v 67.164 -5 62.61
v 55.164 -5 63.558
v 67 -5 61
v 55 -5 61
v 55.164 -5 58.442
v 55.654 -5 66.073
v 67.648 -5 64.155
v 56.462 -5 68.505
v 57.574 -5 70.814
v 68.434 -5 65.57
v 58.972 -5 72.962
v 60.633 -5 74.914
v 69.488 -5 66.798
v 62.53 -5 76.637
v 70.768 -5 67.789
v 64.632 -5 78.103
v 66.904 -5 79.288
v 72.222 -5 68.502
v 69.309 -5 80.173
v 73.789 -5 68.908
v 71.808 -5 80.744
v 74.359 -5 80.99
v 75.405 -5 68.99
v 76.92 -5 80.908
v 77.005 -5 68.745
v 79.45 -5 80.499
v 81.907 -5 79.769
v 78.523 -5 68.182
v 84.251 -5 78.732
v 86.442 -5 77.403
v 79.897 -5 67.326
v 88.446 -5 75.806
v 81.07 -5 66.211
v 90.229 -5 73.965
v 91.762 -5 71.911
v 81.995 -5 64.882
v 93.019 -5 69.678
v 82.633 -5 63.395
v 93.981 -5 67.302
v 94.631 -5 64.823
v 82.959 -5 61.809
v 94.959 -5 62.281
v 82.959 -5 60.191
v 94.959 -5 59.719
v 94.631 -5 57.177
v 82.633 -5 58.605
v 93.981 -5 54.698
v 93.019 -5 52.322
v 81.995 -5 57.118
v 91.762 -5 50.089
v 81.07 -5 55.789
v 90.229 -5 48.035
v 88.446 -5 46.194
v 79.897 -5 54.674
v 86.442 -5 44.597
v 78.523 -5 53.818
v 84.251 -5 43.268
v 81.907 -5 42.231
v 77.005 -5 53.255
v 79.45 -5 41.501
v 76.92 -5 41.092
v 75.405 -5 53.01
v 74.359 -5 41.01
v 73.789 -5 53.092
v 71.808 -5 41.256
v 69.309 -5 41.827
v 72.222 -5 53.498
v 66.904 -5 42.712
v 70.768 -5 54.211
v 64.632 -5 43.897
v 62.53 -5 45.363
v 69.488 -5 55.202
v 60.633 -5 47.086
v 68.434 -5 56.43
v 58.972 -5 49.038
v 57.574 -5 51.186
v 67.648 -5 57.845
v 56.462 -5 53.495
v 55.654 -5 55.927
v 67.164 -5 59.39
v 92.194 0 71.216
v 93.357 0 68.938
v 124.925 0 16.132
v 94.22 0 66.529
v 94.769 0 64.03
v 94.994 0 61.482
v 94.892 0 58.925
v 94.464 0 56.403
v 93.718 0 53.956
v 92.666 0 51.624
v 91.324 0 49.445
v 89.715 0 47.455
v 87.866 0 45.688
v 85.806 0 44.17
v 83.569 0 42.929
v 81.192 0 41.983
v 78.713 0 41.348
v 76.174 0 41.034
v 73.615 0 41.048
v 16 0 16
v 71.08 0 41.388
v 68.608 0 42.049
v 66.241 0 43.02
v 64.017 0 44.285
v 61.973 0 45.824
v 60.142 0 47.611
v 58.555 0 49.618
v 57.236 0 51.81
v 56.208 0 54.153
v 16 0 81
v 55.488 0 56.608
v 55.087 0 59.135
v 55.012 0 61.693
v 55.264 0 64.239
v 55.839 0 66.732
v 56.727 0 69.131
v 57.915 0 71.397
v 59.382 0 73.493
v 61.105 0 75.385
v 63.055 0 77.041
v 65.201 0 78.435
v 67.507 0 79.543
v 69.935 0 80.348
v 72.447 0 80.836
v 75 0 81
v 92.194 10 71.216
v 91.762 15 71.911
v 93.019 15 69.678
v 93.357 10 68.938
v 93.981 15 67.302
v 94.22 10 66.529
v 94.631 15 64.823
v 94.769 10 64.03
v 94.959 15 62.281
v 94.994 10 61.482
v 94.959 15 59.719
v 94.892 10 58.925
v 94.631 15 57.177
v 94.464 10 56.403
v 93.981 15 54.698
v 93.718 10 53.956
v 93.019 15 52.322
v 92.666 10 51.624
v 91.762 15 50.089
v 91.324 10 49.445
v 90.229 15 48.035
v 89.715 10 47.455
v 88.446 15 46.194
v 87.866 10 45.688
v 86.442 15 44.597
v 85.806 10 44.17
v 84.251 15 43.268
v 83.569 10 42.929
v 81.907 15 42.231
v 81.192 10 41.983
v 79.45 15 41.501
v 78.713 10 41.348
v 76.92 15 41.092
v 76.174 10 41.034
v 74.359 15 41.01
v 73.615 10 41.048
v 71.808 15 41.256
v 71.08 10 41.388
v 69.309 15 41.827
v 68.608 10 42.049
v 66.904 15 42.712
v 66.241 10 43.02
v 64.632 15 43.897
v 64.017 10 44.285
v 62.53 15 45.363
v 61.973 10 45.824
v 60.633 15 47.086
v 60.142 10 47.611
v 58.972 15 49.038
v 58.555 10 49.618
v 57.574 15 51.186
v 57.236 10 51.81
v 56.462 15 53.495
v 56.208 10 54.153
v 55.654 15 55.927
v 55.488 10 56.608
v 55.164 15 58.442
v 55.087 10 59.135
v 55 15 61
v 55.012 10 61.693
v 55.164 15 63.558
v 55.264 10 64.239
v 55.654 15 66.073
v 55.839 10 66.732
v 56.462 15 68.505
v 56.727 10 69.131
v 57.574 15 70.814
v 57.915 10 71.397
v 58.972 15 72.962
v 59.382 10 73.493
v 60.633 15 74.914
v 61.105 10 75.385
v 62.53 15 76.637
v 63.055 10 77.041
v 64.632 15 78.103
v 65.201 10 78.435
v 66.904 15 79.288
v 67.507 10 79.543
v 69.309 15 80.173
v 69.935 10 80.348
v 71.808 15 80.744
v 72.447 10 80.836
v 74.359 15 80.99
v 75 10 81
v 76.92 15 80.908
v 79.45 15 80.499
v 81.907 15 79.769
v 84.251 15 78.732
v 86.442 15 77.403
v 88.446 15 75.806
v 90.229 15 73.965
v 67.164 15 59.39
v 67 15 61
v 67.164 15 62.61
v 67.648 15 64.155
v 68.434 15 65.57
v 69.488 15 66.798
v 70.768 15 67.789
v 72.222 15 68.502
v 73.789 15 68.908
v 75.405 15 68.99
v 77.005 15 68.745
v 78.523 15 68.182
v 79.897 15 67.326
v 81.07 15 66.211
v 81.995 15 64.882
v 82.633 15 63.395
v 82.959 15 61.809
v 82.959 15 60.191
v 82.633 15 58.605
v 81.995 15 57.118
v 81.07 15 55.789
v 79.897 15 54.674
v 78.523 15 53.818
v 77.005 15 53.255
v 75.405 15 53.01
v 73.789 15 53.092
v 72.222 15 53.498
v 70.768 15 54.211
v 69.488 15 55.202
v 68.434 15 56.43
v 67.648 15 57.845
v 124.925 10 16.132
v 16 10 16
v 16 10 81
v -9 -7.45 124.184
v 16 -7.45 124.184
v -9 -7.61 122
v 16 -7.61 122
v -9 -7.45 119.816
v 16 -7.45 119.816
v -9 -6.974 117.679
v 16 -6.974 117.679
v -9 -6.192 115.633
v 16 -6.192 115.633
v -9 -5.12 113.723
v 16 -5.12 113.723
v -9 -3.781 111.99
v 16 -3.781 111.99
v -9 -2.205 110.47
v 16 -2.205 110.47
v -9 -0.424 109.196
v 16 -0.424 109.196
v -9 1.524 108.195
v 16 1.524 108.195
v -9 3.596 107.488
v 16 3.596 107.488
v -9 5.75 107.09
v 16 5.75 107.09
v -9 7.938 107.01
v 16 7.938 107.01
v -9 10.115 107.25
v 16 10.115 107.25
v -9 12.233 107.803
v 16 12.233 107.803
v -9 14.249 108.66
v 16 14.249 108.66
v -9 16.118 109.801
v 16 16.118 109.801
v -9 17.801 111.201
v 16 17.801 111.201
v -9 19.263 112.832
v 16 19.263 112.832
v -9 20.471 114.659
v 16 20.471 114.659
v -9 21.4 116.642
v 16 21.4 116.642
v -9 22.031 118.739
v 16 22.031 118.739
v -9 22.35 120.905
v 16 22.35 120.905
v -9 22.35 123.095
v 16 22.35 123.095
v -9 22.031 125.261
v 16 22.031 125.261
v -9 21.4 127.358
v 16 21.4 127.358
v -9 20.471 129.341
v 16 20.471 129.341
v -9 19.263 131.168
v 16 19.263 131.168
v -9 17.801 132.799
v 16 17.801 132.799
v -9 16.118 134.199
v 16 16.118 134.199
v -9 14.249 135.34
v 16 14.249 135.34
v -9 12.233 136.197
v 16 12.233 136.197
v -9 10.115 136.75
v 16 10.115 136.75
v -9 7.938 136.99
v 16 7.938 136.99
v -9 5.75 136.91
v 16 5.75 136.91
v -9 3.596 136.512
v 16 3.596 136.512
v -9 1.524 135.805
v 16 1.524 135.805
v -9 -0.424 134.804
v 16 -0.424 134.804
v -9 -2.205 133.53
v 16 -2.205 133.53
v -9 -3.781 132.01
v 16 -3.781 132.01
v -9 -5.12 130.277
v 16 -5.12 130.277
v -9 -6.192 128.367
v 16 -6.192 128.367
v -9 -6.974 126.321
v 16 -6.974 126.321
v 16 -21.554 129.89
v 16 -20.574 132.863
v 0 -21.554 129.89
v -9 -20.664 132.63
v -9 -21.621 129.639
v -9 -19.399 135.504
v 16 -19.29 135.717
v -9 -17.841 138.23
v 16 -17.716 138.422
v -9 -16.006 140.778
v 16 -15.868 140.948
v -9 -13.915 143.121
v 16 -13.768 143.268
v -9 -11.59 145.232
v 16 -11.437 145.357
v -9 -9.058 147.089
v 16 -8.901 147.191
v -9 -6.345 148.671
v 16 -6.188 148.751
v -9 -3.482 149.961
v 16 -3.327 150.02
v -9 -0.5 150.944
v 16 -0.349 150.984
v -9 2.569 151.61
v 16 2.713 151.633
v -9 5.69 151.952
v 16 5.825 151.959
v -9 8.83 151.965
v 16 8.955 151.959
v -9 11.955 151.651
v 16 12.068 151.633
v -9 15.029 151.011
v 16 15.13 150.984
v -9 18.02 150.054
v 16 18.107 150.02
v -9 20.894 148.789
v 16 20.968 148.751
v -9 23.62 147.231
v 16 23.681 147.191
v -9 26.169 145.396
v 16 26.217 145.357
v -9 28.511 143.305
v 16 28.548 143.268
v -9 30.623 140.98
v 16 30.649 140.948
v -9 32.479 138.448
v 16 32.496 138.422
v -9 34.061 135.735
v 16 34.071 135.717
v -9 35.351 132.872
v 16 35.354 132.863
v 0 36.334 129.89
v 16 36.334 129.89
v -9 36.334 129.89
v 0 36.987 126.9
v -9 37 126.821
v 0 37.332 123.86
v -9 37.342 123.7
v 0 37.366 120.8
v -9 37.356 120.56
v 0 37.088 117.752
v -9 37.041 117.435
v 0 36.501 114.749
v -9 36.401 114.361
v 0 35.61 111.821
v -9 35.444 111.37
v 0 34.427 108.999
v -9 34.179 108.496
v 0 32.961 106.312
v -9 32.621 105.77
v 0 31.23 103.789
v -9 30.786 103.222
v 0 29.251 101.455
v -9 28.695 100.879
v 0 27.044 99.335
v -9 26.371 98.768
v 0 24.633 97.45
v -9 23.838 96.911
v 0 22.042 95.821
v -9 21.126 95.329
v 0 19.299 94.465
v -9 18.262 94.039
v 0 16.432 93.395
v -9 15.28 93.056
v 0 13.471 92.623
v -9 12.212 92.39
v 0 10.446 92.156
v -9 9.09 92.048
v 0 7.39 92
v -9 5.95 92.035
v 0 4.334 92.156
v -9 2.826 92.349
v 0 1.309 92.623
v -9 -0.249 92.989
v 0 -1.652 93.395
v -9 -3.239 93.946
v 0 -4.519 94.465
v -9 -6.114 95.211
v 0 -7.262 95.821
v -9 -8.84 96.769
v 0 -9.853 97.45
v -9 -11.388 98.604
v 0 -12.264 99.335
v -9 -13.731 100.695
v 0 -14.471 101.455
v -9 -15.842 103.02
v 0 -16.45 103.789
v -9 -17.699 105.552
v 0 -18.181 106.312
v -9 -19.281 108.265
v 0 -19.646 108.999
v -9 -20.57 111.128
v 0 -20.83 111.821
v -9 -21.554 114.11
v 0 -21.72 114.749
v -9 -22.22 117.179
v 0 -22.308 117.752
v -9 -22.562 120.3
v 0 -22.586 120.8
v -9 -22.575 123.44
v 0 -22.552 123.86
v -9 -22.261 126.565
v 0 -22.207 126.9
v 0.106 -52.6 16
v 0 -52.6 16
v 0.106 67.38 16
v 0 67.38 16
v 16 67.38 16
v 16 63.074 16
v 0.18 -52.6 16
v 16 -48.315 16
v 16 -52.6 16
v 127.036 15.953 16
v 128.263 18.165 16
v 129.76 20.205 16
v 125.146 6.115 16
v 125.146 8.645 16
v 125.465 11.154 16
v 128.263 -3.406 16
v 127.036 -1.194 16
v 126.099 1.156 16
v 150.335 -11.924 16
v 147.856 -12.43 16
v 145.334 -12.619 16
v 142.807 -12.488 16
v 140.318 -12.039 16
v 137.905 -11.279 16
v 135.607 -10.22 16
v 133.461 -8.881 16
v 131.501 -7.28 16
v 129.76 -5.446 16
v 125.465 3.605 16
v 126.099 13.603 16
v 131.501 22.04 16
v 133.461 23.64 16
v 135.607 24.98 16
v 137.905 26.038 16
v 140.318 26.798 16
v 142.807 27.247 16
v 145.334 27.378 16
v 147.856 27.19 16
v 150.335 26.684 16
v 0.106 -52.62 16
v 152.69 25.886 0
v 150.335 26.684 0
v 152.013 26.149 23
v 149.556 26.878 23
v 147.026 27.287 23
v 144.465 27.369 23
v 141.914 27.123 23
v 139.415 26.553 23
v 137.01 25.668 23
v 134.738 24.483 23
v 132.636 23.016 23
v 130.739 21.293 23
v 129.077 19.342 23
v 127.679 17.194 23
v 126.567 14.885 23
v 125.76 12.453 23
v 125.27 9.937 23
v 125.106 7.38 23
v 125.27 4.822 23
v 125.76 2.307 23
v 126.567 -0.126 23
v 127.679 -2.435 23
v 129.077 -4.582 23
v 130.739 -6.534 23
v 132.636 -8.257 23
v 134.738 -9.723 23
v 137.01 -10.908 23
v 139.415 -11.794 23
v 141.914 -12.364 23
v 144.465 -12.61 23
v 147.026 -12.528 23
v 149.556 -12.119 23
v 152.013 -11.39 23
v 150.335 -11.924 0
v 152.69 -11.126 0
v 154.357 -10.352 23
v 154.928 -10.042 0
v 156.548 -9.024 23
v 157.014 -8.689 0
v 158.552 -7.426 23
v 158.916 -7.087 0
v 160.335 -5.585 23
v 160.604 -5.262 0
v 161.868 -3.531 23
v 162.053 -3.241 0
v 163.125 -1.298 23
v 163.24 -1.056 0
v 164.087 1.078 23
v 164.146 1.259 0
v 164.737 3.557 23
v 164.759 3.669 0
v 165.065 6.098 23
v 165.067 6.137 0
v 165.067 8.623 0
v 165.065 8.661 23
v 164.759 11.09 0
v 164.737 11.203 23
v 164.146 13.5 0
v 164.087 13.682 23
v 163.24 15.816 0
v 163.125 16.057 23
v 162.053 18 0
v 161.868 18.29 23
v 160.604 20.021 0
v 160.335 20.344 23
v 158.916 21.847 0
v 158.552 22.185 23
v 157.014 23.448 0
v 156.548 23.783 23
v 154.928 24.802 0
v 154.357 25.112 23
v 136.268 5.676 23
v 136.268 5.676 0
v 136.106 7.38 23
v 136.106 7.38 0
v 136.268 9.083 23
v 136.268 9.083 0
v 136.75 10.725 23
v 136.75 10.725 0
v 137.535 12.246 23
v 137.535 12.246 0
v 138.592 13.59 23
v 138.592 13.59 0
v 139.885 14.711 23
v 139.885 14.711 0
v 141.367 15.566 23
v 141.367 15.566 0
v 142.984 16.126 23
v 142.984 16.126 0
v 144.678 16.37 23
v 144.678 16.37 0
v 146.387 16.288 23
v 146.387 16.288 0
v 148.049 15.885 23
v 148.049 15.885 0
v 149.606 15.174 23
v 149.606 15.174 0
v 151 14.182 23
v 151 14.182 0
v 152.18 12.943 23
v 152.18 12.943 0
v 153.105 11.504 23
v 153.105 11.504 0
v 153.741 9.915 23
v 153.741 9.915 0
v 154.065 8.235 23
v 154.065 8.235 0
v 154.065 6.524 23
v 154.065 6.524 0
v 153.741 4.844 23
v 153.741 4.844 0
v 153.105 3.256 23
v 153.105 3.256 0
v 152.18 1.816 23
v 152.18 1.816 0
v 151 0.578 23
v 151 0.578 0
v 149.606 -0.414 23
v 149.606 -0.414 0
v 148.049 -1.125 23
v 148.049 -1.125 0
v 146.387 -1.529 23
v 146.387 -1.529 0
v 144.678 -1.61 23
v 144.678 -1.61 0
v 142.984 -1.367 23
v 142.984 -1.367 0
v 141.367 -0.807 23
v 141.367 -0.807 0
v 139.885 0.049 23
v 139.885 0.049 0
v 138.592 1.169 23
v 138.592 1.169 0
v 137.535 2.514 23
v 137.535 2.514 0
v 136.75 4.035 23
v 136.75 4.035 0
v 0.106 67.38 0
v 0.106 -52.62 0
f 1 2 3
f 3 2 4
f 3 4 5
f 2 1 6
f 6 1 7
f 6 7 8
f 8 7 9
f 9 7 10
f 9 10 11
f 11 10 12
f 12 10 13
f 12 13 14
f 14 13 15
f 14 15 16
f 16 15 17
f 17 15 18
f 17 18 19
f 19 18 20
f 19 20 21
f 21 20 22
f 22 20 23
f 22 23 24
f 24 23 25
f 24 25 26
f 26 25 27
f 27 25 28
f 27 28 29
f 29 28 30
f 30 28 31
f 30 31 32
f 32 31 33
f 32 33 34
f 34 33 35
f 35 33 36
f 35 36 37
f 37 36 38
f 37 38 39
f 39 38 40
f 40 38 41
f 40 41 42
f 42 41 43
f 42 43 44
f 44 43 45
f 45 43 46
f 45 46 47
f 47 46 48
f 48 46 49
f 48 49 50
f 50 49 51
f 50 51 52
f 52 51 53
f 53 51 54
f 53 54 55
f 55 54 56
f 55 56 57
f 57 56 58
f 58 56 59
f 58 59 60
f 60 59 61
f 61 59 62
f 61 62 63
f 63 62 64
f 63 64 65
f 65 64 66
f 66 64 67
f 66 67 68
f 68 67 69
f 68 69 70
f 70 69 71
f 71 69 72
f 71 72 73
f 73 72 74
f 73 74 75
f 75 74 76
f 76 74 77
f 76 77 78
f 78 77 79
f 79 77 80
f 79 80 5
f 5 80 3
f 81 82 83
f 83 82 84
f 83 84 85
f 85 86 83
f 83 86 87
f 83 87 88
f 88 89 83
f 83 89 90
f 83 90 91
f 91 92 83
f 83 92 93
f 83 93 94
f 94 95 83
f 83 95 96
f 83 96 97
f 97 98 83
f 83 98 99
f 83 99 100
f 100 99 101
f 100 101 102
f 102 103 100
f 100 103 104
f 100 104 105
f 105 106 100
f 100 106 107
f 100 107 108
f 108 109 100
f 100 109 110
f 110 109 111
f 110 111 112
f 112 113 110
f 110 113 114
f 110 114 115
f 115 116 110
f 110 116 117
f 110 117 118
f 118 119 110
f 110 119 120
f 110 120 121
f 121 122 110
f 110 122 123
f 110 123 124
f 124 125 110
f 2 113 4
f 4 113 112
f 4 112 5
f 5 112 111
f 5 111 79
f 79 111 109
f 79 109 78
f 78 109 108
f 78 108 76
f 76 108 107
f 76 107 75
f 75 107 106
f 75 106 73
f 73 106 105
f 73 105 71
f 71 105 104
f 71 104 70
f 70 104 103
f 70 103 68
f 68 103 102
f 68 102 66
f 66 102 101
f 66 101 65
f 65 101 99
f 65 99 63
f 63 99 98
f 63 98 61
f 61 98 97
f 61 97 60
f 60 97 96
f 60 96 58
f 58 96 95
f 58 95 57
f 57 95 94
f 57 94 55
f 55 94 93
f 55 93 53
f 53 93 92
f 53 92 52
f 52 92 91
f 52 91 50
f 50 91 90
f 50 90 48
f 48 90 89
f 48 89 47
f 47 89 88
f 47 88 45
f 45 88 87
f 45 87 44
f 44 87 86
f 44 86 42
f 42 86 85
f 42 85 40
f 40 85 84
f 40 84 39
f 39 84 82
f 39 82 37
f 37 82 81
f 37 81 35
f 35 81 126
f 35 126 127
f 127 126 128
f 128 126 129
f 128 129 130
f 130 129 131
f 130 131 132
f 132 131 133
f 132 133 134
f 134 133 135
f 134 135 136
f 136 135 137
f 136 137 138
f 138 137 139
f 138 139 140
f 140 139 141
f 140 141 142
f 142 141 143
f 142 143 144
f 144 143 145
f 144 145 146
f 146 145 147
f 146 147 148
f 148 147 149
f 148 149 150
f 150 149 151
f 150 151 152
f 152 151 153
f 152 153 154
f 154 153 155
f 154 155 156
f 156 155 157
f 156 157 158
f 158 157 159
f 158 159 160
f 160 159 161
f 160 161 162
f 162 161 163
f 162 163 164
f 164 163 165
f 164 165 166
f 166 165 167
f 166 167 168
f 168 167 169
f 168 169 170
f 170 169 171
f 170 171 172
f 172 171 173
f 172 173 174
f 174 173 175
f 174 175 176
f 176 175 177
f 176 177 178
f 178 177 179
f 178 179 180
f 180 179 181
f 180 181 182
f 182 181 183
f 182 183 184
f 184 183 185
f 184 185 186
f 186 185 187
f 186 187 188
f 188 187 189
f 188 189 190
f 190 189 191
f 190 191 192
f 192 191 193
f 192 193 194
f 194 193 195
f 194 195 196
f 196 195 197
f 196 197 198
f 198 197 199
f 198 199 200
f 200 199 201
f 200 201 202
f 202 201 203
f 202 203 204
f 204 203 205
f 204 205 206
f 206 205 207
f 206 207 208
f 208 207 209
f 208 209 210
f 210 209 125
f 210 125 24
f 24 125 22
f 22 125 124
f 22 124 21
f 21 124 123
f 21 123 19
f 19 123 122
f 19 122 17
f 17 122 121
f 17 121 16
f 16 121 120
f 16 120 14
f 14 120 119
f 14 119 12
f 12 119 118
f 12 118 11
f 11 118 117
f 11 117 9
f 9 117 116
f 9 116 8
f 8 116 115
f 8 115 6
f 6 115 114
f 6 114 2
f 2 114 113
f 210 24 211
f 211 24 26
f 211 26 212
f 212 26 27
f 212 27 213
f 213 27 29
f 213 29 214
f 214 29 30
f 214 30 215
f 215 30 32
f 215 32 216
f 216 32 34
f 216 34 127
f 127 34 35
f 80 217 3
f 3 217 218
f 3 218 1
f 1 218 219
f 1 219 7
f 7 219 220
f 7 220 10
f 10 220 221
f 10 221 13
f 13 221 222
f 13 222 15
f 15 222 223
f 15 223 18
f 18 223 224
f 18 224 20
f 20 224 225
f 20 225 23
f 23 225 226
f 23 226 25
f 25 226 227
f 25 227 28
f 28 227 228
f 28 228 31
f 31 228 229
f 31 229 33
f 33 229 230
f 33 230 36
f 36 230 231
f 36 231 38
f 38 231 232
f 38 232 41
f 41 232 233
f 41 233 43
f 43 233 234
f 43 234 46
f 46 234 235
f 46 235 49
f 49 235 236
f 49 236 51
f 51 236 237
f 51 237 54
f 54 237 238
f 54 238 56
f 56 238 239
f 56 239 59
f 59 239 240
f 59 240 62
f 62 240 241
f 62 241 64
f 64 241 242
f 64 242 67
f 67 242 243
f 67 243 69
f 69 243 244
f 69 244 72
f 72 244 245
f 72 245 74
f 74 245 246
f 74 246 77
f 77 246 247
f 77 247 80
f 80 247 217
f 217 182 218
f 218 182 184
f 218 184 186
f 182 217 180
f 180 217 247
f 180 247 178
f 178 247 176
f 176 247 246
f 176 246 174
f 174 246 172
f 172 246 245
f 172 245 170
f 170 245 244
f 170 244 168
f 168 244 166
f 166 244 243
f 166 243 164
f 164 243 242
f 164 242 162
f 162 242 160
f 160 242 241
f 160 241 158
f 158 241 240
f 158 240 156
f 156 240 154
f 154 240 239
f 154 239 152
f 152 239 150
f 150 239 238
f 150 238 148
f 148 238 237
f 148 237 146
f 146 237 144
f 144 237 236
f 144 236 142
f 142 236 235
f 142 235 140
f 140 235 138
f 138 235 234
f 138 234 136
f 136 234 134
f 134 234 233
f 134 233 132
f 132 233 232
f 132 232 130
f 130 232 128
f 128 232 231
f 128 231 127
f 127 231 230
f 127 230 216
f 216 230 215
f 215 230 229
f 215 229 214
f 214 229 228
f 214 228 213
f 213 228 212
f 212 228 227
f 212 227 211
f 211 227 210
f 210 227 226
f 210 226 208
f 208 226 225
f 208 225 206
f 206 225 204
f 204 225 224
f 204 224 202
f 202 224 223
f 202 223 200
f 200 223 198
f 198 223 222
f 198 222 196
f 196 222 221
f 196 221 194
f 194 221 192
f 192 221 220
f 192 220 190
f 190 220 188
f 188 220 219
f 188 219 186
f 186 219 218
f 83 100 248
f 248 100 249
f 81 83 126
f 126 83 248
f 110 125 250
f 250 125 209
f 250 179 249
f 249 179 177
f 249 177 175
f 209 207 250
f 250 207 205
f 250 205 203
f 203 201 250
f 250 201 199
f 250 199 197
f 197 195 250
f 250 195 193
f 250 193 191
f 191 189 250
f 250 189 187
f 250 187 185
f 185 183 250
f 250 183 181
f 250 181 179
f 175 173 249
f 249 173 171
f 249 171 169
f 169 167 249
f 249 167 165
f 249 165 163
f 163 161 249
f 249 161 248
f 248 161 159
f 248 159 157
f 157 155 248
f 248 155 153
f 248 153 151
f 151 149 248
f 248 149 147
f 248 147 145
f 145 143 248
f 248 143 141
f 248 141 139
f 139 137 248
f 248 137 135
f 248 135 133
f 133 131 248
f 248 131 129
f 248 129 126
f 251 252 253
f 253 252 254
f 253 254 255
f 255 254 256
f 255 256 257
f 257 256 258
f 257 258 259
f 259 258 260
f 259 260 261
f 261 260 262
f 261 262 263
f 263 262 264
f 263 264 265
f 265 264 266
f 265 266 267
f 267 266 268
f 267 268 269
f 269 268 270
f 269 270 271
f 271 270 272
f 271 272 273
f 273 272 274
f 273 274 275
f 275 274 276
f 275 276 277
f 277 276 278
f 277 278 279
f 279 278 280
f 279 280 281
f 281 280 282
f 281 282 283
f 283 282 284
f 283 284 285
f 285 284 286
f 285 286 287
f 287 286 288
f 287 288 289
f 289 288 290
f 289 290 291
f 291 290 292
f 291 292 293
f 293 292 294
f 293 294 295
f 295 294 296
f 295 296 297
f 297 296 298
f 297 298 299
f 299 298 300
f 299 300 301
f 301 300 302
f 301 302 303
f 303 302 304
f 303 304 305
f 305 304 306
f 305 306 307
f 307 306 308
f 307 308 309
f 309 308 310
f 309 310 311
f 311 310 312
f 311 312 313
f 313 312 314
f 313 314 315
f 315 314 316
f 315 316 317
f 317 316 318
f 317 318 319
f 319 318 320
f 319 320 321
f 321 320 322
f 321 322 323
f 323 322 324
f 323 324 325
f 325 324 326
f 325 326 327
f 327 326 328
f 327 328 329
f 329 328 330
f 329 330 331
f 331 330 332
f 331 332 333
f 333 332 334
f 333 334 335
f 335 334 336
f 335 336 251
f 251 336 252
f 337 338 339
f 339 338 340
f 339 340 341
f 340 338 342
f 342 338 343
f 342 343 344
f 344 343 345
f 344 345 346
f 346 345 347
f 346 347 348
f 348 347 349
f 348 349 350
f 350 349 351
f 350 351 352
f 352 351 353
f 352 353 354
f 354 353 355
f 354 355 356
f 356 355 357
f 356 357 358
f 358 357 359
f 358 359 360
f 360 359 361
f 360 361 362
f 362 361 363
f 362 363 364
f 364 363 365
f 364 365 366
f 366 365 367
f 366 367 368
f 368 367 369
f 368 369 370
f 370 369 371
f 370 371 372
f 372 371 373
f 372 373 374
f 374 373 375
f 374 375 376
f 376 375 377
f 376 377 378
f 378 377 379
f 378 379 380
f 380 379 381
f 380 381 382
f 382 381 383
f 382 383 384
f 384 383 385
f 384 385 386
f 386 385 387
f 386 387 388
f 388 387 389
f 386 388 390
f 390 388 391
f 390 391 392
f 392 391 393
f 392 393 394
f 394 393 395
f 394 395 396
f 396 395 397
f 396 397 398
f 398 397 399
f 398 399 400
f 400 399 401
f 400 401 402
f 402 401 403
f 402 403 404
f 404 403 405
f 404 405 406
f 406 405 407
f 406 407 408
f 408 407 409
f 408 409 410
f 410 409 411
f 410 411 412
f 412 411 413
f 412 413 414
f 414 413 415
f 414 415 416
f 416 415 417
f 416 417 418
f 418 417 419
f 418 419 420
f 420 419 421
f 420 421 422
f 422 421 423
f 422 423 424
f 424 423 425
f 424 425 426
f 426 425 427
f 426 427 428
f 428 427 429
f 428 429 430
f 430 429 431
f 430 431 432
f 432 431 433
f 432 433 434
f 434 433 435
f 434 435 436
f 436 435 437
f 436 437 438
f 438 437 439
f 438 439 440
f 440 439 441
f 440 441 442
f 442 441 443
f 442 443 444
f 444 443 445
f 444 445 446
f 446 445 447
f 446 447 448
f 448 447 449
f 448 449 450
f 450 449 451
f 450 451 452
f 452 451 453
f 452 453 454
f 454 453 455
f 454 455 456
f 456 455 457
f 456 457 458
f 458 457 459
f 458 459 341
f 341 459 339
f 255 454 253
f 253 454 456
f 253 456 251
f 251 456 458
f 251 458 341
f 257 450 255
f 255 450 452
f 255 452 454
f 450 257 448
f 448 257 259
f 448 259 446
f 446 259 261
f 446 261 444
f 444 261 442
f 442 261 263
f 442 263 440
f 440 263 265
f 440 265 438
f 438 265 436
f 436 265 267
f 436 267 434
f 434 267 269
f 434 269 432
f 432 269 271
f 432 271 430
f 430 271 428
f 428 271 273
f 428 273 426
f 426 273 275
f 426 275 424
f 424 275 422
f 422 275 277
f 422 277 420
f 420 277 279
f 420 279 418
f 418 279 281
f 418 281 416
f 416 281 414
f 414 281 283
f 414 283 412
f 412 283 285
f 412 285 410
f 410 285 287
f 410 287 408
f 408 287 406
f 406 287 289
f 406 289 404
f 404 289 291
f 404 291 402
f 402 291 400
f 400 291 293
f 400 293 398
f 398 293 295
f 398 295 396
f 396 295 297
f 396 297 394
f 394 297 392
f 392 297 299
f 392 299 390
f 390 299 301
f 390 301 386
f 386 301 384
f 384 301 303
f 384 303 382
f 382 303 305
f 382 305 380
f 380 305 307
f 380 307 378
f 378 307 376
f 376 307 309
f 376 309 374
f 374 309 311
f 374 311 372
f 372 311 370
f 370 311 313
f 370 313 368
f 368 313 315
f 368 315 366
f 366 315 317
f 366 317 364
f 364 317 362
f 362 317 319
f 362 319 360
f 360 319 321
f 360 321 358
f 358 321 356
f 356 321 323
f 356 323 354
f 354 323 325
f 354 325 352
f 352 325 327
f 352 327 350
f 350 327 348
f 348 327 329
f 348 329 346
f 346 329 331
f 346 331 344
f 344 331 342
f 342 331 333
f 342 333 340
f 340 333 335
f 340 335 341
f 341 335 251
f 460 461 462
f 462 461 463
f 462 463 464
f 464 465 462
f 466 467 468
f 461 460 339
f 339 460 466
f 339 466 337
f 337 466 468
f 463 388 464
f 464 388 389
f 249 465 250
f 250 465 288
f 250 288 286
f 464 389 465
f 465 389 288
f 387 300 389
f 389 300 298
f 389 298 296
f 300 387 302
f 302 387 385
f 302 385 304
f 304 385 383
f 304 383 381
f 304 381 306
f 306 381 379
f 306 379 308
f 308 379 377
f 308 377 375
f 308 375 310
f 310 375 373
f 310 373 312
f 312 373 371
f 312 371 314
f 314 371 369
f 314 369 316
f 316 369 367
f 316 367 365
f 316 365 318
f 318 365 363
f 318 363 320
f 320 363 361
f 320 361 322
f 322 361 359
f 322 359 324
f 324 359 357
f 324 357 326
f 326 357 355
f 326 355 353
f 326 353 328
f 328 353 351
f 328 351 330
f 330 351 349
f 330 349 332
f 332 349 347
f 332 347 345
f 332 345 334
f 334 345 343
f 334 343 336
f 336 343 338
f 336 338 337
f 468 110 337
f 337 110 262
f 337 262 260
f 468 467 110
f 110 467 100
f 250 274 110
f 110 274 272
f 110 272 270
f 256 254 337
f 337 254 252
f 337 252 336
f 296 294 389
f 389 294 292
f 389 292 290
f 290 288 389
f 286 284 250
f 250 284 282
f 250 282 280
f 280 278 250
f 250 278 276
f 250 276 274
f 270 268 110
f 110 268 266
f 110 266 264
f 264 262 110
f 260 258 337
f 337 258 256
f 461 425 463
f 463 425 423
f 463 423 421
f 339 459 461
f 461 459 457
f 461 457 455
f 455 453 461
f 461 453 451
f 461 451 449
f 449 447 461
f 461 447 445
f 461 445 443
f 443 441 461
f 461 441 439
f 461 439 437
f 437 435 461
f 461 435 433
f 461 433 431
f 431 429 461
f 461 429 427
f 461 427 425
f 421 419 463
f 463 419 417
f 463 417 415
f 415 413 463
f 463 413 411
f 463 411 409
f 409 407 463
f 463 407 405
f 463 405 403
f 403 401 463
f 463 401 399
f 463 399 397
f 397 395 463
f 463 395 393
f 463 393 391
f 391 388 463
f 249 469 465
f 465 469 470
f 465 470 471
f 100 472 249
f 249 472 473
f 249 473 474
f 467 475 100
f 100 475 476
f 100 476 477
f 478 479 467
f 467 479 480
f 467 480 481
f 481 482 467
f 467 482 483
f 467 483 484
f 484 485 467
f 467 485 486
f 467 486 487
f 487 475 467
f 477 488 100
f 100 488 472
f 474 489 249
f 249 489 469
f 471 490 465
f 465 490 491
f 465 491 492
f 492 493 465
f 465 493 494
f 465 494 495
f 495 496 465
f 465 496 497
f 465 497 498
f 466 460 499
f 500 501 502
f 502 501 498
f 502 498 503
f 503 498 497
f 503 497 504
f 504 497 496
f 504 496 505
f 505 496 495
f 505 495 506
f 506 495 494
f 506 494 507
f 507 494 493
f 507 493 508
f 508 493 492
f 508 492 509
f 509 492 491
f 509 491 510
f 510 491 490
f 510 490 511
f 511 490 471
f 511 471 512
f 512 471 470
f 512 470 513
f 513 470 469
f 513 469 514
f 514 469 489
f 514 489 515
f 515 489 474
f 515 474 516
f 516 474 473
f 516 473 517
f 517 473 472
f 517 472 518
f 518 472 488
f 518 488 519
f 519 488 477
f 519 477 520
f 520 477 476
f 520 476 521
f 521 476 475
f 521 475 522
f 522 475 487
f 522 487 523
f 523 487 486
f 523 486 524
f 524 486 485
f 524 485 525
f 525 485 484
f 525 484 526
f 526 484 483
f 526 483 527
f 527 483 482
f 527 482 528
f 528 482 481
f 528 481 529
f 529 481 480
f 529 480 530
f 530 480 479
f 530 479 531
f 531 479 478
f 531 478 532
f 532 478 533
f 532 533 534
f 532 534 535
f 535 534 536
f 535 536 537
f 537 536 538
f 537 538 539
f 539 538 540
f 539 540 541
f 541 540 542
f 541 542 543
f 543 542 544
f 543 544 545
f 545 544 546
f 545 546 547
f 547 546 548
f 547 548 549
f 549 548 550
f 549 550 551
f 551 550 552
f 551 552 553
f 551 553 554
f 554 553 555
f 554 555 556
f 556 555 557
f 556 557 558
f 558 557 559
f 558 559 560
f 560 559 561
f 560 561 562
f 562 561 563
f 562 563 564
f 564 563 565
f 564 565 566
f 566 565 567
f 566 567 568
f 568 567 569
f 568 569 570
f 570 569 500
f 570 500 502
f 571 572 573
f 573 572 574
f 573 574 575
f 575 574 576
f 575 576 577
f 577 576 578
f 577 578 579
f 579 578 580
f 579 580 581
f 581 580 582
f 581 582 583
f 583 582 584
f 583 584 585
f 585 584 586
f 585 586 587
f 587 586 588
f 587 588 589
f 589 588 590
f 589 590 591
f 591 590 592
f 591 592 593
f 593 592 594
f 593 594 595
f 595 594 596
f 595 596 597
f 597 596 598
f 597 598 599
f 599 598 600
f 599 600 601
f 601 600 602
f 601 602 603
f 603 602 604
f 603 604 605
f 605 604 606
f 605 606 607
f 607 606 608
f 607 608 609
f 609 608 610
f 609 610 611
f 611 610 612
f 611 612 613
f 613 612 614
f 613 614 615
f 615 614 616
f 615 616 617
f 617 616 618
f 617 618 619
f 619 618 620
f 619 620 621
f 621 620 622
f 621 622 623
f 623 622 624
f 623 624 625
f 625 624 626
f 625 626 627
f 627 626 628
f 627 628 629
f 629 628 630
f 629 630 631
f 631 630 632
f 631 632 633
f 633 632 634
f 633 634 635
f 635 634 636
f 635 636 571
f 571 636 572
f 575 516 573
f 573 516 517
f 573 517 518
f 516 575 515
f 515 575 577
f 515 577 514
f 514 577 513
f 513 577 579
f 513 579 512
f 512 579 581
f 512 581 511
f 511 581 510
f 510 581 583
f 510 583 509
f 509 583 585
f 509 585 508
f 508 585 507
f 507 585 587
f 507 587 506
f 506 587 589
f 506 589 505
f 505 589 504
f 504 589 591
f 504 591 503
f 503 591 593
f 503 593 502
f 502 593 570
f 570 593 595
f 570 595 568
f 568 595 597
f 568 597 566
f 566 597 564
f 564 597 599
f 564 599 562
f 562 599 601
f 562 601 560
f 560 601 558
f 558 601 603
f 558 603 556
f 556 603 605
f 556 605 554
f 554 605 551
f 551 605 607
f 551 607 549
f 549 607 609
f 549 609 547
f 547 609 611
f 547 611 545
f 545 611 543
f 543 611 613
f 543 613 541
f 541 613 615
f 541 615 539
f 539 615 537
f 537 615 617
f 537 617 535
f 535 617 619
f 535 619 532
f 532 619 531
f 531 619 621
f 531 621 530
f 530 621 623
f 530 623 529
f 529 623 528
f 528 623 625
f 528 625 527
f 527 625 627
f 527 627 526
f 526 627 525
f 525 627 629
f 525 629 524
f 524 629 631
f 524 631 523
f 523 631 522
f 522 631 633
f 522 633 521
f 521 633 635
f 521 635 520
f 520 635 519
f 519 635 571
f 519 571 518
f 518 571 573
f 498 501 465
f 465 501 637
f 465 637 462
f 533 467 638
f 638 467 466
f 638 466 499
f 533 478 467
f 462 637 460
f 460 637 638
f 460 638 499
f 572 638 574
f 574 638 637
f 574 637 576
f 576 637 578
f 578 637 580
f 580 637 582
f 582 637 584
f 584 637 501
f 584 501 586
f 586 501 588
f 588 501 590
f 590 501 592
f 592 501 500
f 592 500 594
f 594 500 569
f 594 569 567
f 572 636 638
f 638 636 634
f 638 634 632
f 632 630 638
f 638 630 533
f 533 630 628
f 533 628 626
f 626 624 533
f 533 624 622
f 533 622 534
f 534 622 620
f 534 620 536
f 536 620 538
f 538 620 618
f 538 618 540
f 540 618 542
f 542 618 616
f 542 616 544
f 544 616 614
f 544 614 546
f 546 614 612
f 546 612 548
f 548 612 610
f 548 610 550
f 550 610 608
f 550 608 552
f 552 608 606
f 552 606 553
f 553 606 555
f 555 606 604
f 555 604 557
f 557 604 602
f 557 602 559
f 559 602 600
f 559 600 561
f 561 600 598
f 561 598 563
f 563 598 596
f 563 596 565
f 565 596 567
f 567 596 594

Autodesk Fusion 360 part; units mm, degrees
sketch "Sketch1" plane through (0, 0, 0) normal (0, 0, 1) x (1, 0, 0)
  line L0 (0.1058, -52.6202) -> (0.1058, 67.3798)
  line L1 (0.1058, 67.3798) -> (0.1058, 7.3798)
  circle A0 centre (145.1058, 7.3798) radius 9
  circle A1 centre (145.1058, 7.3798) radius 20
  line L2 (0.1058, 67.3798) -> (150.3351, 26.684)
  line L3 (0.1058, -52.6202) -> (150.3351, -11.9245)
  dimension "d1" = 120
  dimension "d2" = 60
  dimension "d3" = 145
  dimension "d4" = 18
  dimension "d5" = 40
extrude "Extrude1" add sketch "Sketch1" along normal blind 16 contours L0 L1 A1 L2 L3
extrude "Extrude2" add sketch "Sketch1" along normal blind 23 contours A1
sketch "Sketch2" plane through (0, 0, 16) normal (0, 0, 1) x (-1, 0, 0)
  line L0 (-0.1058, -67.3798) -> (-0.1058, 52.6202)
  line L1 (-0.1058, 52.6202) -> (-150.3351, 11.9245)
  arc A0 (-150.3351, -26.684) -> (-150.3351, 11.9245) centre (-145.1058, -7.3798) ccw
  line L2 (-150.3351, -26.684) -> (-0.1058, -67.3798)
sketch "Sketch3" plane through (0, 0, 0) normal (1, 0, 0) x (0, 1, 0)
sketch "Sketch4" plane through (0, 0, 0) normal (1, 0, 0) x (0, 1, 0)
  line L0 (-52.6, 16) -> (67.3803, 16)
  line L1 (67.3803, 16) -> (7.3902, 16)
  line L2 (7.3902, 16) -> (7.3902, 122)
  circle A0 centre (7.3902, 122) radius 30
  circle A1 centre (7.3902, 122) radius 15
  line L3 (-52.6, 16) -> (-21.5537, 129.8901)
  line L4 (67.3803, 16) -> (36.334, 129.8901)
  dimension "d10" = 106
  dimension "d11" = 60
  dimension "d12" = 30
extrude "Extrude3" add sketch "Sketch4" along normal blind 16 contours L0 L2 A0 L3 | L0 L1 L2 A0 L4
sketch "Sketch5" plane through (16, 0, 0) normal (1, 0, 0) x (0, 1, 0)
  line L0 (-52.6, 16) -> (-48.3146, 16)
  line L1 (-48.3146, 16) -> (63.0742, 16)
  line L2 (63.0742, 16) -> (67.3803, 16)
  line L3 (67.3803, 16) -> (36.334, 129.8901)
  arc A0 (-21.5537, 129.8901) -> (36.334, 129.8901) centre (7.3902, 122) ccw
  line L4 (-21.5537, 129.8901) -> (-52.6, 16)
  circle A1 centre (7.3902, 122) radius 15
  circle A2 centre (7.3902, 122) radius 30
  dimension "d15" = 30
  dimension "d16" = 60
extrude "Extrude4" add sketch "Sketch5" against normal blind 25 contours A0 A2
sketch "Sketch6" plane through (0, 0, 0) normal (0, 1, 0) x (1, 0, 0)
  line L0 (0, 0) -> (0, -61)
  circle A0 centre (75, -61) radius 20
  circle A1 centre (75, -61) radius 8
  line L1 (75, -81) -> (16, -81)
  line L2 (124.9247, -16.1323) -> (92.1937, -71.2165)
  line L3 (16, -81) -> (16, -16)
  line L4 (16, -16) -> (124.9247, -16.1323)
  dimension "d19" = 61
  dimension "d20" = 75
  dimension "d21" = 40
  dimension "d22" = 16
sketch "Sketch7" plane through (16, 0, 0) normal (1, 0, 0) x (0, 1, 0)
  circle A0 centre (7.3902, 122) radius 15
  line L0 (-52.6, 16) -> (-48.3146, 16)
  line L1 (-48.3146, 16) -> (63.0742, 16)
  line L2 (63.0742, 16) -> (67.3803, 16)
  line L3 (67.3803, 16) -> (36.334, 129.8901)
  arc A1 (36.334, 129.8901) -> (-21.5537, 129.8901) centre (7.3902, 122) ccw
  line L4 (-21.5537, 129.8901) -> (-52.6, 16)
sketch "Sketch8" plane through (0, 0, 0) normal (0, 1, 0) x (1, 0, 0)
extrude "Extrude5" add sketch "Sketch6" along normal blind 10 contours A0 L1 L2 L3 L4
extrude "Extrude6" add sketch "Sketch6" along normal blind 15 contours A0
extrude "Extrude7" add sketch "Sketch6" against normal blind 5 contours A0
